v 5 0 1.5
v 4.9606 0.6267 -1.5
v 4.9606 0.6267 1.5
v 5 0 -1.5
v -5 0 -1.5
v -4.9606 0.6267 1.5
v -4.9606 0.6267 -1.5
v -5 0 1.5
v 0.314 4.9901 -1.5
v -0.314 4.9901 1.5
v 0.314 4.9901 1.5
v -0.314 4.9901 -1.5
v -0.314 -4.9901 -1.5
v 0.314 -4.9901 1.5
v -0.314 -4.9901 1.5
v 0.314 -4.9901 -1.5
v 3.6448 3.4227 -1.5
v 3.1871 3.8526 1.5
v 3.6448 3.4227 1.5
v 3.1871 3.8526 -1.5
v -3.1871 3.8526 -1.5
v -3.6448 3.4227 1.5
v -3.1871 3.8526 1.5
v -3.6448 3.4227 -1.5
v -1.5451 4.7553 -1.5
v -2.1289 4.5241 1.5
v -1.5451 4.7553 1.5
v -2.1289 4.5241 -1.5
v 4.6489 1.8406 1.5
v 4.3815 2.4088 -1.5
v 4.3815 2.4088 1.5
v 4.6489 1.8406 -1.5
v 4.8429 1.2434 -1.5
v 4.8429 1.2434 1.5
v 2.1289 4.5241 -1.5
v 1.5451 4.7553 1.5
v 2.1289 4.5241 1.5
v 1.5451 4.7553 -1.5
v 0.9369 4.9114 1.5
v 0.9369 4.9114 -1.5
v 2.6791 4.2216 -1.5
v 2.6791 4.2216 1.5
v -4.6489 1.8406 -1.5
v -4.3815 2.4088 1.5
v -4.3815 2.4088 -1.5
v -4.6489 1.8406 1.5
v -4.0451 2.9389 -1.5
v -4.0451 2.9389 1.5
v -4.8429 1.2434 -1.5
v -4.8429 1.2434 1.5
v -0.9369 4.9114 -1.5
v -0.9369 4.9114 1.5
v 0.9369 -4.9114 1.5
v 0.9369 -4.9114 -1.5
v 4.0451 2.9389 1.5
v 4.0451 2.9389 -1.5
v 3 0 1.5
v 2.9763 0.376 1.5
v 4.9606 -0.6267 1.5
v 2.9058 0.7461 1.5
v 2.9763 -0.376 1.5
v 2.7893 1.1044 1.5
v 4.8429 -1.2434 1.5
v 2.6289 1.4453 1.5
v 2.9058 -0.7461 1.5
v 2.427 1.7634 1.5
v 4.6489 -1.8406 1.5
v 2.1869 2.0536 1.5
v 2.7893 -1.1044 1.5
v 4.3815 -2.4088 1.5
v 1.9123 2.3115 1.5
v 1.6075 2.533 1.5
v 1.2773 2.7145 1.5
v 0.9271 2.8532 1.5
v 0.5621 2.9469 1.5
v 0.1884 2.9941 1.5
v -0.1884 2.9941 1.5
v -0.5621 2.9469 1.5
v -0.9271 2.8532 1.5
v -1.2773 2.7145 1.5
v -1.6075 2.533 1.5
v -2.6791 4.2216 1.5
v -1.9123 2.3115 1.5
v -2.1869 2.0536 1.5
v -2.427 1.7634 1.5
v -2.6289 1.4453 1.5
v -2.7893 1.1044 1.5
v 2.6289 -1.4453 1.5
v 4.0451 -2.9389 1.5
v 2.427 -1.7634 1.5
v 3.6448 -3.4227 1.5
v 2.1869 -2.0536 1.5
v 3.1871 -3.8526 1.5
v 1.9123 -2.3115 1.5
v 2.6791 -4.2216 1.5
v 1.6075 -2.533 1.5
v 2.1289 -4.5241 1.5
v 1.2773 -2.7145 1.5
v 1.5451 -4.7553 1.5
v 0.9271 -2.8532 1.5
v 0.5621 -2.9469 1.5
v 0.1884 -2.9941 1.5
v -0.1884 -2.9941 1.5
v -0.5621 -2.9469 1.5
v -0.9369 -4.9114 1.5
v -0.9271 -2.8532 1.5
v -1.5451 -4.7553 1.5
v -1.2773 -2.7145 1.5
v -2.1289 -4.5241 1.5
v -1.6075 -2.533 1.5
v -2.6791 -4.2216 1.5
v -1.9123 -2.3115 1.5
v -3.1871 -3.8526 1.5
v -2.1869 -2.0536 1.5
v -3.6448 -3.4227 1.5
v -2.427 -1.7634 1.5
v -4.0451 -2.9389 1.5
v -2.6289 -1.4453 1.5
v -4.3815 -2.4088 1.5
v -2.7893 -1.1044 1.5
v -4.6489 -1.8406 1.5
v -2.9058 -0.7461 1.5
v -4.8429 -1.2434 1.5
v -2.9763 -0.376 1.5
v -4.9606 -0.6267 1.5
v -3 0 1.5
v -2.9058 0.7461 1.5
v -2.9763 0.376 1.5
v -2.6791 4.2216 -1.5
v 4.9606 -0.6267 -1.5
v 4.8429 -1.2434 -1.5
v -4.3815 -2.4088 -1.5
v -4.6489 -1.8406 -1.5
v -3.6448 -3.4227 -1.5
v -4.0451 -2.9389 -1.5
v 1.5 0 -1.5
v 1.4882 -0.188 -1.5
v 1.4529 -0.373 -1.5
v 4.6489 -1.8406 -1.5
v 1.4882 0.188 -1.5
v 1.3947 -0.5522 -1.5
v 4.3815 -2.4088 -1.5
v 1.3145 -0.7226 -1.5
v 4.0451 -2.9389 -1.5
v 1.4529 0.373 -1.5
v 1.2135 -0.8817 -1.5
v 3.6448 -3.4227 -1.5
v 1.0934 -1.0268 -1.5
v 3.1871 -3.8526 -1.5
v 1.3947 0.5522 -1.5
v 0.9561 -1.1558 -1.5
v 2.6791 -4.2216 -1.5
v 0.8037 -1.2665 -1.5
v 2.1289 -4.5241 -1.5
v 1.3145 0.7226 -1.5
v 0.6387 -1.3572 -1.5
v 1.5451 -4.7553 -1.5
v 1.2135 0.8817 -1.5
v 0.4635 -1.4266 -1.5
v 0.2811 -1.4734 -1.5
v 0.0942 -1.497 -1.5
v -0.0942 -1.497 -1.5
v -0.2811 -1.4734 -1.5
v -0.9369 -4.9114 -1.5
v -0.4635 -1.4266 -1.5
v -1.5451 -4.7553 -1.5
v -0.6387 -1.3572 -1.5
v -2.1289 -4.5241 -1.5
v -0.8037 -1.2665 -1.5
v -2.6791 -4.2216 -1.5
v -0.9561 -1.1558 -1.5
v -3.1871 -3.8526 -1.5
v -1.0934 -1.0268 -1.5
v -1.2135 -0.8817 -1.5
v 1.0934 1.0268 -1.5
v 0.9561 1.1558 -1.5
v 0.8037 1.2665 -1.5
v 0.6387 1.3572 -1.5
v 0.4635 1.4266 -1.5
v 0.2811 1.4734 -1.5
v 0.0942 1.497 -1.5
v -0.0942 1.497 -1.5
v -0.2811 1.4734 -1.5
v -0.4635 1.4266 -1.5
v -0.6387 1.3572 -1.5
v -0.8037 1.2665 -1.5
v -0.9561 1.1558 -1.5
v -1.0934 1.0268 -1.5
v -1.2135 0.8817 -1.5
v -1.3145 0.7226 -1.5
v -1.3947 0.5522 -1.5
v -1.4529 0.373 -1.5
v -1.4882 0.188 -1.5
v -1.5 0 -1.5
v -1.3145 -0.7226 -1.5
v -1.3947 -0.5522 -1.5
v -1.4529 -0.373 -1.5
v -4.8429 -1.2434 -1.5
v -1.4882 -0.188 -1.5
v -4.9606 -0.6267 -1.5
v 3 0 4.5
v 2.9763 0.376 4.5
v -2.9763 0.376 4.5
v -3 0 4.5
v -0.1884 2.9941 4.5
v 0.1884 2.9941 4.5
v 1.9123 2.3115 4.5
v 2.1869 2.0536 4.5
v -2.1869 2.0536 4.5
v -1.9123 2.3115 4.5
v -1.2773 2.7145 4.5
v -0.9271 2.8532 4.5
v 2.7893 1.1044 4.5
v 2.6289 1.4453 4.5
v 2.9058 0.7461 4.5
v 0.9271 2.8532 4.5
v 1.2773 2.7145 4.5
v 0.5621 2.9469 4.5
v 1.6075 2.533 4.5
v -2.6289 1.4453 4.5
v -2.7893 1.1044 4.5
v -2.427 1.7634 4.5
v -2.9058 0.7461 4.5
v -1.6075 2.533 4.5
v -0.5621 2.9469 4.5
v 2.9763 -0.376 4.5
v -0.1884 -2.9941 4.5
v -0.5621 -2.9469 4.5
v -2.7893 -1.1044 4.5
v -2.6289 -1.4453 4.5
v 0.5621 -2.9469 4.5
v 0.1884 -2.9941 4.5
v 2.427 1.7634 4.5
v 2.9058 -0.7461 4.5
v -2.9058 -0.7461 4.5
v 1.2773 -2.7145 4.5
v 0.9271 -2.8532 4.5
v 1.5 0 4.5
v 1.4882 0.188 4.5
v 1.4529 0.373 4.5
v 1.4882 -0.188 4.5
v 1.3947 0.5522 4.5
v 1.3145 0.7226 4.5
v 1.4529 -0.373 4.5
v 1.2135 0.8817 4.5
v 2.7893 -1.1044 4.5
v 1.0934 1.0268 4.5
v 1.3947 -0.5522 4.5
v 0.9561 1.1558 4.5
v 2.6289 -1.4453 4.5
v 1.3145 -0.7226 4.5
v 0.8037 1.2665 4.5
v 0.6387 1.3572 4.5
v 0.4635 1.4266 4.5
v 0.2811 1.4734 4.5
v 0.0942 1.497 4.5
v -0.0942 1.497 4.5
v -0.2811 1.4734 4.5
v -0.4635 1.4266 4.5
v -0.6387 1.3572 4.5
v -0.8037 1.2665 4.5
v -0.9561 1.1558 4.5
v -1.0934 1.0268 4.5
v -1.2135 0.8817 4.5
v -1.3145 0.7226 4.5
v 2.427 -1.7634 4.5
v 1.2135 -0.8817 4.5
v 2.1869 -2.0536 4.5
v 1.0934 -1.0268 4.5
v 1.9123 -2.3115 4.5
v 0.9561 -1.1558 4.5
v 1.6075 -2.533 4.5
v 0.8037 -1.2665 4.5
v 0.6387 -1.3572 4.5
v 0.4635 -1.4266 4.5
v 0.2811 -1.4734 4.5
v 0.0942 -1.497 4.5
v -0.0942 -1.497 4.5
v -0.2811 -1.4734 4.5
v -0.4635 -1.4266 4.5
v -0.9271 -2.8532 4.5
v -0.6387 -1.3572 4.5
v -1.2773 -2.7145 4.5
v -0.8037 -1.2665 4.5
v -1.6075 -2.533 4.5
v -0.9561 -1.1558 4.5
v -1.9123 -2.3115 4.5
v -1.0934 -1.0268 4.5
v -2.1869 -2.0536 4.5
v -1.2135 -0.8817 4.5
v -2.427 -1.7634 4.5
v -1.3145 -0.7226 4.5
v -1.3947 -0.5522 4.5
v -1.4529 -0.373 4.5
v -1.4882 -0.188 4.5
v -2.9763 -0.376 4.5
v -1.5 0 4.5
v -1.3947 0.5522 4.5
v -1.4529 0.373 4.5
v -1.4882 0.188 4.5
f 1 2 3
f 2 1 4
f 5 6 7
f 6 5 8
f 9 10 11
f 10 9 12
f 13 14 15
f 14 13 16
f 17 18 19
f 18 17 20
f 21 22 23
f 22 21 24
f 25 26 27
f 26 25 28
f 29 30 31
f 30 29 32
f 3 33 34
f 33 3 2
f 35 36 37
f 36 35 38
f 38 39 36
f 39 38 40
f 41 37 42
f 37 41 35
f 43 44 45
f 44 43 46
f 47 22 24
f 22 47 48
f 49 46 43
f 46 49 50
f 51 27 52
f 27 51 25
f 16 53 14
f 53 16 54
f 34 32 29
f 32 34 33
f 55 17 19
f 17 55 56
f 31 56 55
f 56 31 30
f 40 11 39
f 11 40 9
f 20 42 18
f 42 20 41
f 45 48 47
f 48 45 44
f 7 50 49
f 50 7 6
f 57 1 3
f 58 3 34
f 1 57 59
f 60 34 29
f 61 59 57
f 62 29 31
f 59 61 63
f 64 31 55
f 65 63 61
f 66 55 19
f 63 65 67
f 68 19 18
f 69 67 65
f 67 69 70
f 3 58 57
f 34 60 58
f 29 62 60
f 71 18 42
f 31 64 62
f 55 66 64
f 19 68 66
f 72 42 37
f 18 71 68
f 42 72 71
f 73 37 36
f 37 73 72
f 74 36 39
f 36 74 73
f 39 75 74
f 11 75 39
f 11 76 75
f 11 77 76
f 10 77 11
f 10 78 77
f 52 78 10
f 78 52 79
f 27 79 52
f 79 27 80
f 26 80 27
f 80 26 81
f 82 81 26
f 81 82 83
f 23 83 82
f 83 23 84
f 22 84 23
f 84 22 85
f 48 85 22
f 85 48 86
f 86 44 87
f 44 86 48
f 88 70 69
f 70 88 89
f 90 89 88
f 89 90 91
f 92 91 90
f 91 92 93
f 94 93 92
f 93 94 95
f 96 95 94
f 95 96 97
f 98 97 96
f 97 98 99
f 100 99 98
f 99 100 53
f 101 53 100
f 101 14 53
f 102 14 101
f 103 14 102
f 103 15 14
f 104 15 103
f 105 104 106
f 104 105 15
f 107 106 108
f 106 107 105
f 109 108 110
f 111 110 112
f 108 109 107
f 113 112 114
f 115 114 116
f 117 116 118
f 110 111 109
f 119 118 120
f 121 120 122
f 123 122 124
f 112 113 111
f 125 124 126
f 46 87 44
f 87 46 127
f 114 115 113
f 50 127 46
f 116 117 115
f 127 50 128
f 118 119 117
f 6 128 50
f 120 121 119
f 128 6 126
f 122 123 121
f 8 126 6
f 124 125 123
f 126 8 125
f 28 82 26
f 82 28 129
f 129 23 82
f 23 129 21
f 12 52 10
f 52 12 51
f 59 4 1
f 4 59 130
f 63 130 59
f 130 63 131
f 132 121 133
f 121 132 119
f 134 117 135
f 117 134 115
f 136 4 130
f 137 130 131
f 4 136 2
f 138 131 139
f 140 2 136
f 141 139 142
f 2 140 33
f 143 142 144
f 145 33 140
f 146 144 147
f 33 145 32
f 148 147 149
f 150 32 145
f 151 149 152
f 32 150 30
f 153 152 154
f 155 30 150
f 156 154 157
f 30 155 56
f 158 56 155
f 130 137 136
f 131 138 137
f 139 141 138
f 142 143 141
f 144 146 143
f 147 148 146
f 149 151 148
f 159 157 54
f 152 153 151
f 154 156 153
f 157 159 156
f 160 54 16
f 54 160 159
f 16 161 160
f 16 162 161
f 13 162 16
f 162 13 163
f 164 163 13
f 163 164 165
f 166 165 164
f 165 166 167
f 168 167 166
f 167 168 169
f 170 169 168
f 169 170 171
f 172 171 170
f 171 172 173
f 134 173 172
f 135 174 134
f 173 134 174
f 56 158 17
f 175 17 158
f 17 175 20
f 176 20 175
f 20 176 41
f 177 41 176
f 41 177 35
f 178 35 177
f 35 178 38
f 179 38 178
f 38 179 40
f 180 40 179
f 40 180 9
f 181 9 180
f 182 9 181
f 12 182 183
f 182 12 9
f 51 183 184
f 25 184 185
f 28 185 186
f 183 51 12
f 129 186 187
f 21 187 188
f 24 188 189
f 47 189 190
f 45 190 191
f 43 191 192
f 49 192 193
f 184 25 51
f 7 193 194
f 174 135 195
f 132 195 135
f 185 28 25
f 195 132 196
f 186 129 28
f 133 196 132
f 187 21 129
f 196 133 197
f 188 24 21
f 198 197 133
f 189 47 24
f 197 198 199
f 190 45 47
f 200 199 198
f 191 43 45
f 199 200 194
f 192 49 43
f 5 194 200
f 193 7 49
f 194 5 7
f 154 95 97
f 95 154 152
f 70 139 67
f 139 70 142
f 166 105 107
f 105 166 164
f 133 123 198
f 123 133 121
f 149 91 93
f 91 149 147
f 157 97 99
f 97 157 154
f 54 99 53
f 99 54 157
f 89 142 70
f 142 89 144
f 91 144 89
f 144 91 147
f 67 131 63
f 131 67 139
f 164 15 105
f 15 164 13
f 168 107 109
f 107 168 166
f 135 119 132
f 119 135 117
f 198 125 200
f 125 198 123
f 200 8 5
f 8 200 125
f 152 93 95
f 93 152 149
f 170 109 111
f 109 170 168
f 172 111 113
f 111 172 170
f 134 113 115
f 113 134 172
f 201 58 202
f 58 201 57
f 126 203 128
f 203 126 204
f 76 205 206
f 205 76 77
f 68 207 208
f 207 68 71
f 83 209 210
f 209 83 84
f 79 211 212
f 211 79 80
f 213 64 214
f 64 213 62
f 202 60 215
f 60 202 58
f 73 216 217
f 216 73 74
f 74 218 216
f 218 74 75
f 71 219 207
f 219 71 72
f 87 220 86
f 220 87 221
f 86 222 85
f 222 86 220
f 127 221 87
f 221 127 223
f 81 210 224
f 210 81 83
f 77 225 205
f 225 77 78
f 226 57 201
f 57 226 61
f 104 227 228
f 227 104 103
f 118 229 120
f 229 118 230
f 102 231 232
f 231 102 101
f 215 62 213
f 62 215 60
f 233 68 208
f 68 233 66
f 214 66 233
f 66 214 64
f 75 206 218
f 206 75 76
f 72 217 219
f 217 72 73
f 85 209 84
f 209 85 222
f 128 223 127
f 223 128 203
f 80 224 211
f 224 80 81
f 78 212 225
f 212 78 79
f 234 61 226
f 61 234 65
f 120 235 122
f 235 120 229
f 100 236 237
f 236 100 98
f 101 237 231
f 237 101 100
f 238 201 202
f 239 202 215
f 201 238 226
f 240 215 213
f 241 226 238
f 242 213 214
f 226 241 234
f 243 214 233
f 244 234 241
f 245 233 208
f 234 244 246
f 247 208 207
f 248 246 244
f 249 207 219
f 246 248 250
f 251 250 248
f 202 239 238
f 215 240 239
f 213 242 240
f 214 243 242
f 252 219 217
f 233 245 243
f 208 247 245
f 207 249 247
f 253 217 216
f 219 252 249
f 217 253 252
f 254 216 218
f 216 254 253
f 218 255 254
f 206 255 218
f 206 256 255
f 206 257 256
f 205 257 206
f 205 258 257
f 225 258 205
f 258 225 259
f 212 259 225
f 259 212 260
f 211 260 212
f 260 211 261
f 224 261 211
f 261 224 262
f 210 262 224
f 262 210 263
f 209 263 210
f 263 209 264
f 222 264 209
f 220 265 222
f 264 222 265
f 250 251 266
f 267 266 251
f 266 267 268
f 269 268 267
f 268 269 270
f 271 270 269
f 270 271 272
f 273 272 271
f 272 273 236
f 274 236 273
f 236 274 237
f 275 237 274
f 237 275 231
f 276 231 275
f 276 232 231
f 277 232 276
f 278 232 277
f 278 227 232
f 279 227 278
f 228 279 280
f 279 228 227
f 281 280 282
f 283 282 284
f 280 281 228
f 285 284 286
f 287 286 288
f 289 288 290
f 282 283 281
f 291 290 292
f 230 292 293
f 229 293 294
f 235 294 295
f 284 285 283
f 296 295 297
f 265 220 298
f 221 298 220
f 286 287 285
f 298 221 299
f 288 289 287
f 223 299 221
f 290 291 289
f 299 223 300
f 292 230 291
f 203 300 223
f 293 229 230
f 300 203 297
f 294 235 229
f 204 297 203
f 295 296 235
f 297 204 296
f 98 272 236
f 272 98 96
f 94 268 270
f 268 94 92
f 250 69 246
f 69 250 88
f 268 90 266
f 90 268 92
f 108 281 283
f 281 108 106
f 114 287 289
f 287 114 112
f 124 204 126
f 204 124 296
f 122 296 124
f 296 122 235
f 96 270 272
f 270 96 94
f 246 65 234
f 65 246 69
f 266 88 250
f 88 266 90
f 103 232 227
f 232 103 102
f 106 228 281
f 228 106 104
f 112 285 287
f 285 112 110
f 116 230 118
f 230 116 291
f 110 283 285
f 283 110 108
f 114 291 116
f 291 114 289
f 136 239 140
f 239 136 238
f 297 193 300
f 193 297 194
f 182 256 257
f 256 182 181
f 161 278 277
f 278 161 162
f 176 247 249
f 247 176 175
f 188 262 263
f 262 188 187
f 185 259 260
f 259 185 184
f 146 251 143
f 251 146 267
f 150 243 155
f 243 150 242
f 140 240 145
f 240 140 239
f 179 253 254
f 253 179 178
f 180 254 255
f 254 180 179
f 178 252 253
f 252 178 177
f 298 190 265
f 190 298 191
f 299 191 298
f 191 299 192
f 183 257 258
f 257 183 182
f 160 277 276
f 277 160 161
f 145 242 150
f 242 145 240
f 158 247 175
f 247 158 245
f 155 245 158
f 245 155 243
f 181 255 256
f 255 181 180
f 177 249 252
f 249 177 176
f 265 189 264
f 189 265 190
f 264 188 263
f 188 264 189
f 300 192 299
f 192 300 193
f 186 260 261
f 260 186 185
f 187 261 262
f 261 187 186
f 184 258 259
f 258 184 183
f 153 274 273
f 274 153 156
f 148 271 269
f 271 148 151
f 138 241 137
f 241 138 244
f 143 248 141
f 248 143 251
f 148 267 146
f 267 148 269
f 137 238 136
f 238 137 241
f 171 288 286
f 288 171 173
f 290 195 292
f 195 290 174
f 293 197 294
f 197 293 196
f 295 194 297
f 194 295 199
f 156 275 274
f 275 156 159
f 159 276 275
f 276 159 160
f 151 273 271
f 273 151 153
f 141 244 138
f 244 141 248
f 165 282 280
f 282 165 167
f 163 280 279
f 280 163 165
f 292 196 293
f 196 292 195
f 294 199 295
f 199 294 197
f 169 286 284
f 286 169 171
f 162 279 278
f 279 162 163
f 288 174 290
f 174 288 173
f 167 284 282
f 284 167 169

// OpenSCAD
$fn = 50;


difference() {
	union() {
		translate(v = [0, 0, -1.5000000000]) {
			cylinder(h = 3, r = 5.0000000000);
		}
		translate(v = [0, 0, -1.5000000000]) {
			cylinder(h = 6, r = 3.0000000000);
		}
	}
	union() {
		translate(v = [0, 0, -50.0000000000]) {
			cylinder(h = 100, r = 1.5000000000);
		}
	}
}
